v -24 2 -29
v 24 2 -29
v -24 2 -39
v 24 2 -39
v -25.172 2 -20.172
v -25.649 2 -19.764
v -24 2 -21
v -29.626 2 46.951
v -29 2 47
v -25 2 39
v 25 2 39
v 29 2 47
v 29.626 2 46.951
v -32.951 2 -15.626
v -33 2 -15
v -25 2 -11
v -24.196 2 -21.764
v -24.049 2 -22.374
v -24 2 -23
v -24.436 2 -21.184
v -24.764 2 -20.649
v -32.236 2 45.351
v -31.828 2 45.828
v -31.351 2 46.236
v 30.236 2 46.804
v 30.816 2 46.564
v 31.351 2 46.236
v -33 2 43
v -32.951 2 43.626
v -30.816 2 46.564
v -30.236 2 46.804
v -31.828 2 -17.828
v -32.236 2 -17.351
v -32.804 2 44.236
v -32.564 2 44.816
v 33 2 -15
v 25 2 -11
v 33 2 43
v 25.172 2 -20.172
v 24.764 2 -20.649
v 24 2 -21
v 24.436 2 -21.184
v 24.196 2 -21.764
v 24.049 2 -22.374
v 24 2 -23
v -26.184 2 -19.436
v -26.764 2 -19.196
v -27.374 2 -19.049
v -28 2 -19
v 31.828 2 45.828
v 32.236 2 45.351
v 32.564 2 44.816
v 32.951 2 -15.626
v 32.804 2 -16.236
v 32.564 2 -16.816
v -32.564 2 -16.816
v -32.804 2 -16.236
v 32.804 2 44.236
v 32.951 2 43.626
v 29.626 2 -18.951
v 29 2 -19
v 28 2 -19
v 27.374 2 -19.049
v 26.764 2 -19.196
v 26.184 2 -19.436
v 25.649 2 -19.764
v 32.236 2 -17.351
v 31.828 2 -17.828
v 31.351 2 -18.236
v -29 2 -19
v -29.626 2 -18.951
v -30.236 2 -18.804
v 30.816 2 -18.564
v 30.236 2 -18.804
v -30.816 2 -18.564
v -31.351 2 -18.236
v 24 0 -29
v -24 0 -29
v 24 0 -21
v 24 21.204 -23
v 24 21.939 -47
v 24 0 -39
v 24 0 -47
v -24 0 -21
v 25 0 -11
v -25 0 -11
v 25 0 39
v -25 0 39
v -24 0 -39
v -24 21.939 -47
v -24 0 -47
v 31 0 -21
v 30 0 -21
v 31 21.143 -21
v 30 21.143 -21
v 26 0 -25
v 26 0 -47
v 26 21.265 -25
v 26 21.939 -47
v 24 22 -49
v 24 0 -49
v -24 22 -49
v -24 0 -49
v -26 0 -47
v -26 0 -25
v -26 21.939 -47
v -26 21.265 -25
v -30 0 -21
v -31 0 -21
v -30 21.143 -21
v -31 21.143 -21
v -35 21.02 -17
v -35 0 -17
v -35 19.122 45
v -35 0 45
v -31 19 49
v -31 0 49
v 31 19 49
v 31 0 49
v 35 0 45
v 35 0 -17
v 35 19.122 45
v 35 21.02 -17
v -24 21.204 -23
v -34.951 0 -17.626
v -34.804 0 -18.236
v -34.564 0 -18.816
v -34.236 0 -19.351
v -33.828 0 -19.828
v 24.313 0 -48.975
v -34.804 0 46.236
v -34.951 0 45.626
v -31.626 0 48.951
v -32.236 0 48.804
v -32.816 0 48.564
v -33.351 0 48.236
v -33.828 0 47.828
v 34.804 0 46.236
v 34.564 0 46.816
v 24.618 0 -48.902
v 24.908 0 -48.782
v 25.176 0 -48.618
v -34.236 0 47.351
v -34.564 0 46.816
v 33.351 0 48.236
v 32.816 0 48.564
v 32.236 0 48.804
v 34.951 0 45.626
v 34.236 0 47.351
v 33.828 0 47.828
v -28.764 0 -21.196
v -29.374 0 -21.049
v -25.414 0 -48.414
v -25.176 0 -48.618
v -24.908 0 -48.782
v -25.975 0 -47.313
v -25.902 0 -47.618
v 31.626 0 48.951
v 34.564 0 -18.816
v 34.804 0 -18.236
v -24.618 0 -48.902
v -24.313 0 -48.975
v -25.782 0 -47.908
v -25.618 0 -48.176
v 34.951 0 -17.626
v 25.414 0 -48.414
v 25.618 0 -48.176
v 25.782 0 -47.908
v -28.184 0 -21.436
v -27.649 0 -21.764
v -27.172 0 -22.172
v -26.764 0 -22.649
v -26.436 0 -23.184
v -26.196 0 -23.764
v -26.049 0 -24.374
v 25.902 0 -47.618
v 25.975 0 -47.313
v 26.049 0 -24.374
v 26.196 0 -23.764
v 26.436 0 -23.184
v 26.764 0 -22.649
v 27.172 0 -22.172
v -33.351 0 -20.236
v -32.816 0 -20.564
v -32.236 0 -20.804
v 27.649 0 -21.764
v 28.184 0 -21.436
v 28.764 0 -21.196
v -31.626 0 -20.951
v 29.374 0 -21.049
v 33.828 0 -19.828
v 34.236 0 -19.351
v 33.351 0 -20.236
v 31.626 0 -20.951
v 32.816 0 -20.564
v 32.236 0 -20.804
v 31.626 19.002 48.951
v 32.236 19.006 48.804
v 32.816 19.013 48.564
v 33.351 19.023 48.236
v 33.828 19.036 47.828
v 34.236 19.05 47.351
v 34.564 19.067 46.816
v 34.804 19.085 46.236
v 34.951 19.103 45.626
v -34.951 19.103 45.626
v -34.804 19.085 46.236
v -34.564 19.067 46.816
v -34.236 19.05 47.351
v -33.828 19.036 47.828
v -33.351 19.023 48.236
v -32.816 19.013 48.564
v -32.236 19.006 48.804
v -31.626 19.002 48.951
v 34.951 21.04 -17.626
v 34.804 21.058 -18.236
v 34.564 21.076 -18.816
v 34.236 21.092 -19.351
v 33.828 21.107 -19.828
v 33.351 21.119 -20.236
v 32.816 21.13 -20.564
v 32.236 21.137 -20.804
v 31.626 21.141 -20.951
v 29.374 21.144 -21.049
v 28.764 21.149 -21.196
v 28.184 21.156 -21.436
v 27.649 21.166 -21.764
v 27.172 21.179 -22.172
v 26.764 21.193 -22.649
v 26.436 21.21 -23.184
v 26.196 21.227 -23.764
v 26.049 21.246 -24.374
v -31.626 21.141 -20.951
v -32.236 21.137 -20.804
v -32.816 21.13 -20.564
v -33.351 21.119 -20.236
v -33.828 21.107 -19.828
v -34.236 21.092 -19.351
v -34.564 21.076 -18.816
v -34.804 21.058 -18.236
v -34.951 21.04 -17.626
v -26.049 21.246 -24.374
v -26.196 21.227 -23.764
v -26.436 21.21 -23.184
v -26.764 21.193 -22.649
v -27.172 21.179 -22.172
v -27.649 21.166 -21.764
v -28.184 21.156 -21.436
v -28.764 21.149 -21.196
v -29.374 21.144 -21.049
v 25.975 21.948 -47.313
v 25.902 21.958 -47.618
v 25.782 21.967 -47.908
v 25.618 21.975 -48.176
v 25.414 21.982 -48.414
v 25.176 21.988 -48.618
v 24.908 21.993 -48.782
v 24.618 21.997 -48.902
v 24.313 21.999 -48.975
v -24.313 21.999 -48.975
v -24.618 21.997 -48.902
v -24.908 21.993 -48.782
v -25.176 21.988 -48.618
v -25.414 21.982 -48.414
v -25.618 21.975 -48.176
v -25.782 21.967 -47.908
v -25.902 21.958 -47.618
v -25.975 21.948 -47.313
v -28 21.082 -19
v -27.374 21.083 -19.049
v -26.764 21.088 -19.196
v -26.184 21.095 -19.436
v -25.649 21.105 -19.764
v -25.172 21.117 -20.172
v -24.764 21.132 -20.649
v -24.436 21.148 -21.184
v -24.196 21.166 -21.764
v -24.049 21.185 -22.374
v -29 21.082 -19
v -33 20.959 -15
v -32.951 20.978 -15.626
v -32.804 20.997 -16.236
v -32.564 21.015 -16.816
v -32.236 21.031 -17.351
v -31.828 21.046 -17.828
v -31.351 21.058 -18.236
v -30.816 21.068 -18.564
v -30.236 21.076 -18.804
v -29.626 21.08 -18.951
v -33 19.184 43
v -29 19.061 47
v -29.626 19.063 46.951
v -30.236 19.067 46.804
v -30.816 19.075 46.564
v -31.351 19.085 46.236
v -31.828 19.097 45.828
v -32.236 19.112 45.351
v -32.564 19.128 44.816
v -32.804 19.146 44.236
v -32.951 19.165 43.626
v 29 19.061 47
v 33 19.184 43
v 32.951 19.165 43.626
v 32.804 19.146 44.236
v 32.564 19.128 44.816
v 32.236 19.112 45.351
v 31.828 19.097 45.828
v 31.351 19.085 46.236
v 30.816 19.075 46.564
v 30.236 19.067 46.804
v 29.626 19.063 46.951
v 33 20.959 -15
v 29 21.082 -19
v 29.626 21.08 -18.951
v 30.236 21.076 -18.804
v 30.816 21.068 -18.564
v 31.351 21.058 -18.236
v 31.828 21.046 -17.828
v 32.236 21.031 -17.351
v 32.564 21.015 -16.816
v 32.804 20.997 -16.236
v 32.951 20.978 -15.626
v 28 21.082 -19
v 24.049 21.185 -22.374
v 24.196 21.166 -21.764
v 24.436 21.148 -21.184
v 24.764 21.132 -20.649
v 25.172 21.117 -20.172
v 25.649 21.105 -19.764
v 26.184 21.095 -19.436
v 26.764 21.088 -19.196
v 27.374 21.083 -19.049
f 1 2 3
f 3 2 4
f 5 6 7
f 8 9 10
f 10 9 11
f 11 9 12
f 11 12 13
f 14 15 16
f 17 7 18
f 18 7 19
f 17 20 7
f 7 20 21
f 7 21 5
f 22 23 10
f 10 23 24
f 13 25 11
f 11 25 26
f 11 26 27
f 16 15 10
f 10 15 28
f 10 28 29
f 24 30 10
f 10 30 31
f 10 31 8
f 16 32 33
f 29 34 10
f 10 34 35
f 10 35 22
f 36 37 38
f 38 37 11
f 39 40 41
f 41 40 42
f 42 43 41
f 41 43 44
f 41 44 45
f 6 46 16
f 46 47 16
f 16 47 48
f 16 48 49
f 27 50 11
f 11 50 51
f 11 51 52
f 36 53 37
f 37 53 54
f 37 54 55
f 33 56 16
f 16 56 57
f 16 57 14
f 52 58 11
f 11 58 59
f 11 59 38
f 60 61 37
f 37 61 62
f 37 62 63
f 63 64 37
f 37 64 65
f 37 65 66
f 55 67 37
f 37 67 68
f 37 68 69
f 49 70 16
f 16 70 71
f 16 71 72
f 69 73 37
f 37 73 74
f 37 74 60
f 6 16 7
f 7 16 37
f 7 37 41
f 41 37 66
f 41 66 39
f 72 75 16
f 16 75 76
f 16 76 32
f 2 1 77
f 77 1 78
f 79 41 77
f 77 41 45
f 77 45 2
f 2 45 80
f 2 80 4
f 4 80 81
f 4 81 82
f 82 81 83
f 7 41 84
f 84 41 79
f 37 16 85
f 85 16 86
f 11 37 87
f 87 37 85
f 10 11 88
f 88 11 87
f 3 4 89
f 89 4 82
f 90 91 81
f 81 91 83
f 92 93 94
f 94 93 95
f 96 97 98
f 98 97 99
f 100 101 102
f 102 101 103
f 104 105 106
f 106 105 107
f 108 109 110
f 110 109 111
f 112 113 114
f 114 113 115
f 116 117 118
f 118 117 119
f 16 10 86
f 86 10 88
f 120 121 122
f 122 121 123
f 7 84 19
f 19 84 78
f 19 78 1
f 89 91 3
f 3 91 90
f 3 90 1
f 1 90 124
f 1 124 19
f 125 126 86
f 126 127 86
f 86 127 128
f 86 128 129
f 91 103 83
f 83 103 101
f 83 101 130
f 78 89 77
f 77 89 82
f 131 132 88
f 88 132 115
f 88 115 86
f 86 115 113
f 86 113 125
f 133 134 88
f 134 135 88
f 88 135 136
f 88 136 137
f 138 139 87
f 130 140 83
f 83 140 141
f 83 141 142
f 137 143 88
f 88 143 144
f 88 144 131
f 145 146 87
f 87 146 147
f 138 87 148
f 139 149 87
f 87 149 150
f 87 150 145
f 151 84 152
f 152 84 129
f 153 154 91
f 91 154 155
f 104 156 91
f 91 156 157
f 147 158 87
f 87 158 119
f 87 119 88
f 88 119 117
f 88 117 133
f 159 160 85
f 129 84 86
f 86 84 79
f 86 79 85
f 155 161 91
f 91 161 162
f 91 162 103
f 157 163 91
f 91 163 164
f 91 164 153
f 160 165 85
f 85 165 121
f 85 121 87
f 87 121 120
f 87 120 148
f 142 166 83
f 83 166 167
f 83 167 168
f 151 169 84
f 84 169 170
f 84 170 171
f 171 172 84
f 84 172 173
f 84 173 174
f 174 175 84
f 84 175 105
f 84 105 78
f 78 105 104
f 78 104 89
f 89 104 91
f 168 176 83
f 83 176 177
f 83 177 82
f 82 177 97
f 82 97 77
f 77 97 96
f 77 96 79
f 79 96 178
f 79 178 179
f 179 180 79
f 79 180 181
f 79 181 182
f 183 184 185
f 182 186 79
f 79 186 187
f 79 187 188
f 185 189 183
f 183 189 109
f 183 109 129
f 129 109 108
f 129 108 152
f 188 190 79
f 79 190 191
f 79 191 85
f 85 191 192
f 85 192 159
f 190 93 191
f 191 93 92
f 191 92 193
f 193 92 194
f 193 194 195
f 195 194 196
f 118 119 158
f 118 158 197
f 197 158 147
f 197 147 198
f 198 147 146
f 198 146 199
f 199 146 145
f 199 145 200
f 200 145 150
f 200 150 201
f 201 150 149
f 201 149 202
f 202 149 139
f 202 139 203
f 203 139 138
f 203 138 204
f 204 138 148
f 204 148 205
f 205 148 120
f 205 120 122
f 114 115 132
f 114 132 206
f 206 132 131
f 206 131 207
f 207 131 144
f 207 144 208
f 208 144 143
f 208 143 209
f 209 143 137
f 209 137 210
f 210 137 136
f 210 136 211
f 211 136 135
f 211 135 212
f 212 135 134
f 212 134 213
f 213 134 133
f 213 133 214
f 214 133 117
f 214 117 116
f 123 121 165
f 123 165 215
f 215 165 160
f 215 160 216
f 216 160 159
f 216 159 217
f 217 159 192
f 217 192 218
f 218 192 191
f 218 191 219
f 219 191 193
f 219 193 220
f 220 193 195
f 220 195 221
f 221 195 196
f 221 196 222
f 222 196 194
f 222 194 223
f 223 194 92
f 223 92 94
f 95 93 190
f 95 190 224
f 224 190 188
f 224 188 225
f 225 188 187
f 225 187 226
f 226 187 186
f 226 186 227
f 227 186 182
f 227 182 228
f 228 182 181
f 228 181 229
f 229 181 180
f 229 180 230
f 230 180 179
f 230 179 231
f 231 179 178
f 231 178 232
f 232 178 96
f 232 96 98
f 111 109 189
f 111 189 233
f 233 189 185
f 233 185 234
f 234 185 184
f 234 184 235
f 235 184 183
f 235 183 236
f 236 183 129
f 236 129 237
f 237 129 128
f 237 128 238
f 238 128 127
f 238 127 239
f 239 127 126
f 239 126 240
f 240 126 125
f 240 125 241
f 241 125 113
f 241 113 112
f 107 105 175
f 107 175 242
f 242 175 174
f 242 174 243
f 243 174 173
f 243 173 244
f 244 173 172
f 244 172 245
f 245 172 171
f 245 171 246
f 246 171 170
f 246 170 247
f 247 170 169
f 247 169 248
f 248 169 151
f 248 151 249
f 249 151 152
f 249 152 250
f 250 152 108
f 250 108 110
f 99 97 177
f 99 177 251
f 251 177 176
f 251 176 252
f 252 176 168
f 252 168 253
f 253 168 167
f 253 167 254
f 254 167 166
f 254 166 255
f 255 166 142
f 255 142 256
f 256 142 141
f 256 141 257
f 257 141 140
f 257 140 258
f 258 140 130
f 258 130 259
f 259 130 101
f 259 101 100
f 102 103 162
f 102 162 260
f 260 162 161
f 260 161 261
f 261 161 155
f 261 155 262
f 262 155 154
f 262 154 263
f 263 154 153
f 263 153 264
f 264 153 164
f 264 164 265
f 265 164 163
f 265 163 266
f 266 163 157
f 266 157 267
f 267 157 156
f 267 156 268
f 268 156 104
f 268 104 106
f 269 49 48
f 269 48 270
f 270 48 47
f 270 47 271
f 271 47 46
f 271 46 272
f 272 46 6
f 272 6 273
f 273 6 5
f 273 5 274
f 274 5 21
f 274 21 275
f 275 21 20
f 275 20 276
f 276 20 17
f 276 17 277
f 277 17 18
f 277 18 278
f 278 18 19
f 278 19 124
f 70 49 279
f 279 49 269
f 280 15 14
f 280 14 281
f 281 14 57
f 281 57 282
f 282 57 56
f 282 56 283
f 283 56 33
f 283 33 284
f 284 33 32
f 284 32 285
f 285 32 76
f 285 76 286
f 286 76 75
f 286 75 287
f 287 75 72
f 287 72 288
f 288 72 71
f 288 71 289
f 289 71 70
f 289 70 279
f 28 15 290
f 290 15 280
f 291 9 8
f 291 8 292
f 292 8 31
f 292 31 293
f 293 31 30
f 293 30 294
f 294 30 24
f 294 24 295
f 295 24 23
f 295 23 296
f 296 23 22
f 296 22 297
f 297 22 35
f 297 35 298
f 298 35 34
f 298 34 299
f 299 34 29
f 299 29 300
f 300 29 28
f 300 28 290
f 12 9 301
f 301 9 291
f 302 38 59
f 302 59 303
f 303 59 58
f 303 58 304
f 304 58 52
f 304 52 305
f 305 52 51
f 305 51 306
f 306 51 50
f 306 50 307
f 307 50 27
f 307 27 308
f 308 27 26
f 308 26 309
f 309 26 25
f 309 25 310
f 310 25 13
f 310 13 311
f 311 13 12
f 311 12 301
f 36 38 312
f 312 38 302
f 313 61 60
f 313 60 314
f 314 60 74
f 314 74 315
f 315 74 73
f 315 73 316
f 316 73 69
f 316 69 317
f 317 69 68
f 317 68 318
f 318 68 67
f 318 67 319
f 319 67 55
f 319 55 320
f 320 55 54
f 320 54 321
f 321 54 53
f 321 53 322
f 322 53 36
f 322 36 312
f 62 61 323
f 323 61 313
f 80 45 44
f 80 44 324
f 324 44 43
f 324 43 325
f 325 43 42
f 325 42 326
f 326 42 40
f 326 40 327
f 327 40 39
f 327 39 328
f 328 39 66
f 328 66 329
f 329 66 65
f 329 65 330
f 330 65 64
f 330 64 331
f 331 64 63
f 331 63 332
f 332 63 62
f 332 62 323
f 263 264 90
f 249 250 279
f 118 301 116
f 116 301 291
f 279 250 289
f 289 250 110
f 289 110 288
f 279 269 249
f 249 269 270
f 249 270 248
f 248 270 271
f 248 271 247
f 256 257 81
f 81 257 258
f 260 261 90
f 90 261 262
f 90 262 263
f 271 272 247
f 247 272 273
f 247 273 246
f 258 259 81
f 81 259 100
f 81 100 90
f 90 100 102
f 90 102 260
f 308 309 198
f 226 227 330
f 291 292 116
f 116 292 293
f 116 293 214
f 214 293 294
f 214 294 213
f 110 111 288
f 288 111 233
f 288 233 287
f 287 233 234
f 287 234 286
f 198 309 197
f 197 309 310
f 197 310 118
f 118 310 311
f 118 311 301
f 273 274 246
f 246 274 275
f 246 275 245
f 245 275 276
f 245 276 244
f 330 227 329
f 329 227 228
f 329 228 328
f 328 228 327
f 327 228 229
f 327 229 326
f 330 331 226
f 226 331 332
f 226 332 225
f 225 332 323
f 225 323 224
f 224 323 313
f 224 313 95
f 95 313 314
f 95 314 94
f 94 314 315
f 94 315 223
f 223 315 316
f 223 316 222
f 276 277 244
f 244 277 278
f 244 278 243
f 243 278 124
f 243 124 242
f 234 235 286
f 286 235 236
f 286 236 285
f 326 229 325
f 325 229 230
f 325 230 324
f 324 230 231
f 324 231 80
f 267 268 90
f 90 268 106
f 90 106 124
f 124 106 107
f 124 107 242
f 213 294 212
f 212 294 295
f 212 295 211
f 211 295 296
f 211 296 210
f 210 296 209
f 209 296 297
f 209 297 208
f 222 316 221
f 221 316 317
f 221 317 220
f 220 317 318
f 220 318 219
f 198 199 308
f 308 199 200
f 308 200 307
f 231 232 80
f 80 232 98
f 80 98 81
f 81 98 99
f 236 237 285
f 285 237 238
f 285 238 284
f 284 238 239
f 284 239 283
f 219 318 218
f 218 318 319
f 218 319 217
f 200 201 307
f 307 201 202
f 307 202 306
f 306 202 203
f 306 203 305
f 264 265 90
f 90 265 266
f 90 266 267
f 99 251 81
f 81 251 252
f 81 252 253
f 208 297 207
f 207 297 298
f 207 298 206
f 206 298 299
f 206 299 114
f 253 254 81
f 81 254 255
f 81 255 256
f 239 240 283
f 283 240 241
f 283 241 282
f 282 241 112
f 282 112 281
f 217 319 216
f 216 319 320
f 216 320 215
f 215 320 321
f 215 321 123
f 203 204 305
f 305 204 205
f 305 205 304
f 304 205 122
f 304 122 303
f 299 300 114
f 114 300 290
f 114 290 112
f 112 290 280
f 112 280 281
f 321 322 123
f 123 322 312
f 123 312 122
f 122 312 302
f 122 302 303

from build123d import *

# Parameters (mm, degrees)
SKETCH1_W               = 50
SKETCH1_H               = 50
SKETCH1_W_2             = 48
SKETCH1_H_2             = 8
BOSS_EXTRUDE1_DEPTH     = 2
FILLET1_R               = 4
FILLET2_R               = 2
BOSS_EXTRUDE2_START     = 20
BOSS_EXTRUDE2_DEPTH     = 20
CUT_EXTRUDE1_DEPTH      = 65.109281699
CUT_EXTRUDE1_DEPTH_BACK = 65.109281699


with BuildPart() as part:
    # Sketch1 → Boss-Extrude1 (new body)
    with BuildSketch(Plane(origin=(0, 0, 0), x_dir=(1, 0, 0), z_dir=(0, 1, 0))):
        Polygon((26, 49), (-26, 49), (-26, 21), (-35, 21), (-35, -49), (35, -49), (35, 21), (26, 21), align=None)
        with Locations((0, -14)):
            Rectangle(SKETCH1_W, SKETCH1_H, mode=Mode.SUBTRACT)
        with Locations((0, 25)):
            Rectangle(SKETCH1_W_2, SKETCH1_H_2, mode=Mode.SUBTRACT)
        with Locations((0, 43)):
            Rectangle(SKETCH1_W_2, SKETCH1_H_2, mode=Mode.SUBTRACT)
    extrude(amount=BOSS_EXTRUDE1_DEPTH)

    # Fillet1
    fillet1_edges = [part.edges().sort_by_distance(p)[0] for p in [
        (35, 1, -21),
        (35, 1, 49),
        (-35, 1, 49),
        (-35, 1, -21),
        (-26, 1, -21),
        (26, 1, -21),
    ]]
    fillet(fillet1_edges, radius=FILLET1_R)

    # Fillet2
    fillet2_edges = [part.edges().sort_by_distance(p)[0] for p in [
        (-26, 1, -49),
        (26, 1, -49),
    ]]
    fillet(fillet2_edges, radius=FILLET2_R)

    # Sketch4 → Boss-Extrude2 (add)
    with BuildSketch(Plane(origin=(0, 2, 0), x_dir=(1, 0, 0), z_dir=(0, 1, 0)).offset(BOSS_EXTRUDE2_START)):
        with BuildLine():
            Line((-31, -49), (31, -49))
            ThreePointArc((31, -49), (33.828427125, -47.828427125), (35, -45))
            Line((35, -45), (35, 17))
            ThreePointArc((35, 17), (33.828427125, 19.828427125), (31, 21))
            Line((31, 21), (30, 21))
            ThreePointArc((30, 21), (27.171572875, 22.171572875), (26, 25))
            Line((26, 25), (26, 47))
            ThreePointArc((26, 47), (25.414213562, 48.414213562), (24, 49))
            Line((24, 49), (-24, 49))
            ThreePointArc((-24, 49), (-25.414213562, 48.414213562), (-26, 47))
            Line((-26, 47), (-26, 25))
            ThreePointArc((-26, 25), (-27.171572875, 22.171572875), (-30, 21))
            Line((-30, 21), (-31, 21))
            ThreePointArc((-31, 21), (-33.828427125, 19.828427125), (-35, 17))
            Line((-35, 17), (-35, -45))
            ThreePointArc((-35, -45), (-33.828427125, -47.828427125), (-31, -49))
        make_face()
        with BuildLine():
            Line((-29, 19), (-28, 19))
            ThreePointArc((-28, 19), (-25.171572875, 20.171572875), (-24, 23))
            Line((-24, 23), (-24, 47))
            Line((-24, 47), (24, 47))
            Line((24, 47), (24, 23))
            ThreePointArc((24, 23), (25.171572875, 20.171572875), (28, 19))
            Line((28, 19), (29, 19))
            ThreePointArc((29, 19), (31.828427125, 17.828427125), (33, 15))
            Line((33, 15), (33, -43))
            ThreePointArc((33, -43), (31.828427125, -45.828427125), (29, -47))
            Line((29, -47), (-29, -47))
            ThreePointArc((-29, -47), (-31.828427125, -45.828427125), (-33, -43))
            Line((-33, -43), (-33, 15))
            ThreePointArc((-33, 15), (-31.828427125, 17.828427125), (-29, 19))
        make_face(mode=Mode.SUBTRACT)
    extrude(amount=-BOSS_EXTRUDE2_DEPTH)

    # Sketch6 → Cut-Extrude1 (cut, two sides: drawn at the far end of the back side and taken through both)
    with BuildSketch(Plane(origin=(0, 0, 0), x_dir=(0, 0, -1), z_dir=(1, 0, 0)).offset(-CUT_EXTRUDE1_DEPTH_BACK)):
        Polygon((-49, 22), (-49, 19), (49, 22), align=None)
    extrude(amount=CUT_EXTRUDE1_DEPTH + CUT_EXTRUDE1_DEPTH_BACK, mode=Mode.SUBTRACT)


solid = part.part
